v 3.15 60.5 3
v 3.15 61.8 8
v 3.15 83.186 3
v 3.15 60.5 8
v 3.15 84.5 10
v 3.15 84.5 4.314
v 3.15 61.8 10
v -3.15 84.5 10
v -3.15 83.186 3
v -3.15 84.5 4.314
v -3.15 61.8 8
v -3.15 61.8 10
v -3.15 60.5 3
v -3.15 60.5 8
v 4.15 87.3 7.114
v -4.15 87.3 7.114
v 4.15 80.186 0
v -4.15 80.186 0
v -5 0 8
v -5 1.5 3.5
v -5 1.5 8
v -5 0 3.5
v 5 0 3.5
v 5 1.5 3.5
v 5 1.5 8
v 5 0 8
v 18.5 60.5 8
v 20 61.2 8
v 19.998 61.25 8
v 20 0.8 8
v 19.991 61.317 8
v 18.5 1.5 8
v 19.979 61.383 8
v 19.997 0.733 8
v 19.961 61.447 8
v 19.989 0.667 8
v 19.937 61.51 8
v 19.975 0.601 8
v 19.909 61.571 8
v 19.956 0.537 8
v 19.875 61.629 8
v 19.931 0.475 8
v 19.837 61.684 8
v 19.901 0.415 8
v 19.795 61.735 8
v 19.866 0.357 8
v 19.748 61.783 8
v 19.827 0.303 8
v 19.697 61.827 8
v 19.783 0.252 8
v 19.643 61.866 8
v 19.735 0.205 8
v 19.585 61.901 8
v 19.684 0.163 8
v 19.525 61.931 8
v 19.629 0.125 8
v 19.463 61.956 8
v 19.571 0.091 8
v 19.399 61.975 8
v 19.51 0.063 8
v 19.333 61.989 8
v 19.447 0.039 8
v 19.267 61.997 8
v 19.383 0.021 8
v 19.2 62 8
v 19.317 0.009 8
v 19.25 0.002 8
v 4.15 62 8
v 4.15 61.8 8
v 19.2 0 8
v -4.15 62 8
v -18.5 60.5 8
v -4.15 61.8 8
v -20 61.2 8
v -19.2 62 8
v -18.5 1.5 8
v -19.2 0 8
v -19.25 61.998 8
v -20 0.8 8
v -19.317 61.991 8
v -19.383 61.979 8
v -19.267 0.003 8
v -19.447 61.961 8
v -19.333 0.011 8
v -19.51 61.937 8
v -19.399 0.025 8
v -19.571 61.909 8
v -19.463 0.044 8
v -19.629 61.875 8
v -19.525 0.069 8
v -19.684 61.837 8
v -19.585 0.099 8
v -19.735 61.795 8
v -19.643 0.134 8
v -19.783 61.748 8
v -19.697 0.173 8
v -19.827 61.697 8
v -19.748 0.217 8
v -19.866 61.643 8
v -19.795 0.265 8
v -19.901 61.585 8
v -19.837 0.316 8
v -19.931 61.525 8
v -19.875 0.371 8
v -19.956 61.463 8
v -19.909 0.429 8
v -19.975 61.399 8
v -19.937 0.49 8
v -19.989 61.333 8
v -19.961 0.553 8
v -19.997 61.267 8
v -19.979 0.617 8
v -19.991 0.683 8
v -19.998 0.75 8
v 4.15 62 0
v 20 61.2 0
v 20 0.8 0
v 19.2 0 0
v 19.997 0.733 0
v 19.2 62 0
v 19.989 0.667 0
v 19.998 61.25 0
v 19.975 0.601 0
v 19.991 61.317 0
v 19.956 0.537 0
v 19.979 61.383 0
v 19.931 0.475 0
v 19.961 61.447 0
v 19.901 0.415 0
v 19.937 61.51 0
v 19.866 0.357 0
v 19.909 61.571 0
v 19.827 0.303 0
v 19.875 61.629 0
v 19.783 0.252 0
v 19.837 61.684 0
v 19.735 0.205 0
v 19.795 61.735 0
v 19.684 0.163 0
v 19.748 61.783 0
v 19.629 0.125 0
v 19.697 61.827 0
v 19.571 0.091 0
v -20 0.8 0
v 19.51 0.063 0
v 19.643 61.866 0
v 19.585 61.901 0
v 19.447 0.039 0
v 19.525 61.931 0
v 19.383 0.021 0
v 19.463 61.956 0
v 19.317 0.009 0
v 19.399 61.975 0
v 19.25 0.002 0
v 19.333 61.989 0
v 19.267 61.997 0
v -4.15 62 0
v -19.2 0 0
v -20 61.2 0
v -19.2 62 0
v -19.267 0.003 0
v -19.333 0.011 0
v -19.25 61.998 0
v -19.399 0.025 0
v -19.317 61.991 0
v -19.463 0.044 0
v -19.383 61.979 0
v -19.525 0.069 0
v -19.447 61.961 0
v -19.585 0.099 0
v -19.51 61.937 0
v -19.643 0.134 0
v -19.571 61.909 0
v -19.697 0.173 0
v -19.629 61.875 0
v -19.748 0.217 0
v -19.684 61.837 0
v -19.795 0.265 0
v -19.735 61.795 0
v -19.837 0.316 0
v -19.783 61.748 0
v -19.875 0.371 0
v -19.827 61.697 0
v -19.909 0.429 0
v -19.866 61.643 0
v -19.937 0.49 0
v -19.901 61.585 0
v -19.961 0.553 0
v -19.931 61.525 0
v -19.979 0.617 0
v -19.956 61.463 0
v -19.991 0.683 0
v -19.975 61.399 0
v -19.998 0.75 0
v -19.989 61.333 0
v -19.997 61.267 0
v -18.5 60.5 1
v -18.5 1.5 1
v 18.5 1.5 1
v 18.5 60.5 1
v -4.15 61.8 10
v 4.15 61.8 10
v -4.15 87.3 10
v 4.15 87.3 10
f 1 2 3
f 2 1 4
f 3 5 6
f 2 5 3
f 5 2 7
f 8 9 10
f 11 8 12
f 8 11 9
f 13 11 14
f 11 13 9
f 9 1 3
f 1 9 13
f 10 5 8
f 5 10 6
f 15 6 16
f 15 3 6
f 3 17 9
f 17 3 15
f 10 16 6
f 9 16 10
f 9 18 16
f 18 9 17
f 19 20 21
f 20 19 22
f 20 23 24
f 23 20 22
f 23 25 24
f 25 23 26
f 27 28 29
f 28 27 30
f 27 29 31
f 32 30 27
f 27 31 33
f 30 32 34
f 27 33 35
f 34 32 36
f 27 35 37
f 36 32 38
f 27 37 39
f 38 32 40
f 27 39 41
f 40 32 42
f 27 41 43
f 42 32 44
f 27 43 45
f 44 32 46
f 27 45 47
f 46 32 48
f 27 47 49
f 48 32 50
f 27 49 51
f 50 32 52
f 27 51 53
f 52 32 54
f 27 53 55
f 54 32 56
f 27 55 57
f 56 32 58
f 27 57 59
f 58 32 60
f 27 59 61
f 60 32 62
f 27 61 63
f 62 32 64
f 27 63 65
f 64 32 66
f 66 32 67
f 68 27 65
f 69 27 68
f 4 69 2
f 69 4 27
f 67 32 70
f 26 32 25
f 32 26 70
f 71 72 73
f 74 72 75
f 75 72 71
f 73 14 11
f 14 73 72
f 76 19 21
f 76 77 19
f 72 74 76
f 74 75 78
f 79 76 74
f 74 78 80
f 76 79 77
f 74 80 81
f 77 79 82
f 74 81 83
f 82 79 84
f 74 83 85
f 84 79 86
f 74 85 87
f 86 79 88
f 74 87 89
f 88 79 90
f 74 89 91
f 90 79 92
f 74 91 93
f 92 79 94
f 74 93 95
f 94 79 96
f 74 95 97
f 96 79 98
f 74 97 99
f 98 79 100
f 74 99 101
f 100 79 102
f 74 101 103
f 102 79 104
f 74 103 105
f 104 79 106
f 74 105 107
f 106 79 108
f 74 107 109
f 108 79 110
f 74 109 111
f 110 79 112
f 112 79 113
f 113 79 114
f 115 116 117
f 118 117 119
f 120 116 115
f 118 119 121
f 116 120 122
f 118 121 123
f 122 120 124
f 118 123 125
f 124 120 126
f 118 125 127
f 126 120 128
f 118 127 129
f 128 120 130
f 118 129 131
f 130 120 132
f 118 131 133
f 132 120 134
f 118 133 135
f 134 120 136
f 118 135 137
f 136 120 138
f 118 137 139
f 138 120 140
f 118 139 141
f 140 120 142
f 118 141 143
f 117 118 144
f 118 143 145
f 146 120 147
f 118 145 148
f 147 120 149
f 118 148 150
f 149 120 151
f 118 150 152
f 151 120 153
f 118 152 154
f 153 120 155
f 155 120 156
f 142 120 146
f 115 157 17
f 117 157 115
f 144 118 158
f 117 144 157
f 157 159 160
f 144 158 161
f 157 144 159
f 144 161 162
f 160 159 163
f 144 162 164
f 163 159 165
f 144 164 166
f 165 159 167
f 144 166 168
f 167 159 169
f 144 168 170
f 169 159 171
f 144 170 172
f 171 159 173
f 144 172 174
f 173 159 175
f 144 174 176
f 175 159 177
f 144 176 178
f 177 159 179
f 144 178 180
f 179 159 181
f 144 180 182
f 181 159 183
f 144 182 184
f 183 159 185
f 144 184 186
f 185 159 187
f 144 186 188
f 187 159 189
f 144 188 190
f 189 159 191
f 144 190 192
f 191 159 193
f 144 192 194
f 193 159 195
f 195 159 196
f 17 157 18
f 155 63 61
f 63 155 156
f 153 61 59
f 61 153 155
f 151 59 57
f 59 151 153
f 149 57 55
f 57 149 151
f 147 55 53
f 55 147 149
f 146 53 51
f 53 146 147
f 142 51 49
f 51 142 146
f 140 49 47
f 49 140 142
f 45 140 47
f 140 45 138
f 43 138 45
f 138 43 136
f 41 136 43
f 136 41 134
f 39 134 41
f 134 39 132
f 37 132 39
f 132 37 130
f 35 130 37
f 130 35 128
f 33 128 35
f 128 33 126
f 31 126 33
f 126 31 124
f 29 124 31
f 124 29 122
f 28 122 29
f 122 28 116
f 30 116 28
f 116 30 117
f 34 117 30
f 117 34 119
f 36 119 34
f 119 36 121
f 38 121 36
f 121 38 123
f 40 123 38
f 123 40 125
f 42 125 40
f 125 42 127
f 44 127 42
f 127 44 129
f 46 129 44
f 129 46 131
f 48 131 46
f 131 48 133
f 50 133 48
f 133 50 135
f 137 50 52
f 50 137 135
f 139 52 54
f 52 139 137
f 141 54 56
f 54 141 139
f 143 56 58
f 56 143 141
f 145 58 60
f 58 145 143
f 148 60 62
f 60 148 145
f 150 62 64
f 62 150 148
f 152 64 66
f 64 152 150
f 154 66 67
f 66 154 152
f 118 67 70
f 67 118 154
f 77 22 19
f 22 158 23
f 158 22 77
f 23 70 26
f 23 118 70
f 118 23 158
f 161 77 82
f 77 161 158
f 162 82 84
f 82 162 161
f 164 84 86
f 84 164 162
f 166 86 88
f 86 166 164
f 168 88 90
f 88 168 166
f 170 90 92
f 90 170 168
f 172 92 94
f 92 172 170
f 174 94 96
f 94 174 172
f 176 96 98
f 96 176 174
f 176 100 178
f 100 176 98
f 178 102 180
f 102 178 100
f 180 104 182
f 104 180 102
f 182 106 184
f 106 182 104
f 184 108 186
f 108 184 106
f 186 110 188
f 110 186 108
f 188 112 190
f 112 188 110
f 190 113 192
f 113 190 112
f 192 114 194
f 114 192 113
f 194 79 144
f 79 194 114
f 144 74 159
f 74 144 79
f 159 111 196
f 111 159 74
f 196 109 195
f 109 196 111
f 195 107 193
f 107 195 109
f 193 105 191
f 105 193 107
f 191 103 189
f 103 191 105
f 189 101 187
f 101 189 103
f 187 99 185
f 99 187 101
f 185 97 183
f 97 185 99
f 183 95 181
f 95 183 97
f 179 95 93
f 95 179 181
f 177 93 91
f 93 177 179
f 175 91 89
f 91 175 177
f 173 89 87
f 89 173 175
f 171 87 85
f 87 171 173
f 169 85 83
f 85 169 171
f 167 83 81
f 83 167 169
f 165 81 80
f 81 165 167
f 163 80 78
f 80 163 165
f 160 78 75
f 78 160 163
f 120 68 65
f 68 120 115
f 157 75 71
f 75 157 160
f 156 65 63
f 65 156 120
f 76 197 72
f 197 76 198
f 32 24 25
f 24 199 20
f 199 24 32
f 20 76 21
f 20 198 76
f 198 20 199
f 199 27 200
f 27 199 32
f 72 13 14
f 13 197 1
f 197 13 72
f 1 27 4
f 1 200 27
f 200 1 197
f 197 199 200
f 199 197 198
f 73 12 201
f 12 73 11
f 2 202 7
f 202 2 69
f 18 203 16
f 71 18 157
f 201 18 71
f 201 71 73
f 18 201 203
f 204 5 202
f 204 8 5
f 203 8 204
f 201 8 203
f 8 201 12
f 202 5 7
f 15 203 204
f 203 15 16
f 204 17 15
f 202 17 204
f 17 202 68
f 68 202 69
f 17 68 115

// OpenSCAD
$fn=75;

BOX_W = 38.4;
BOX_L = 60.4;
BOX_H = 8.0;

WALL = 1.0;

CORNER_RADIUS = 0.8;

MIC_OUTSIDE_W=8.3;
MIC_OUTSIDE_H=10.0;

MIC_INSIDE_W=6.3;
MIC_L=25.5;

MIC_OFFSET_X = 0;
MIC_OFFSET_Y = -20.4;
MIC_OFFSET_Z = 0;

VENT_OFFSET = -4.5;
VENT_L = 19.0;
VENT_R = -19.0;

module roundedRectangle(width, length, radius) {
    difference() {
        offset(r=radius) square([width, length], center=true);
        offset(r=radius - WALL) square([width - WALL, length - WALL], center=true);
    }
}

module mainLid() {
    // sides of box
    linear_extrude(BOX_H)
    roundedRectangle(BOX_W, BOX_L, CORNER_RADIUS);
    // base of box
    translate([0, 0, BOX_H - WALL]) {
        linear_extrude(WALL) square([BOX_W, BOX_L], center=true);
    }
}

module micBox() {
        translate([MIC_OFFSET_X, MIC_OFFSET_Y, MIC_OFFSET_Z]) {
            translate([0, -10.4, 3])
            rotate([90, 0, 0])
            linear_extrude(MIC_L) square([MIC_OUTSIDE_W, MIC_OUTSIDE_H], center=true);
        }
    }
//}


module cutouts() {
    rotate([180, 0, 0]) {   // Flipping the entire object along the X axis
        translate([MIC_OFFSET_X, MIC_OFFSET_Y, MIC_OFFSET_Z]) {
            // Inside mic channel
            translate([0, -3.5, BOX_H-8])
            rotate([90, 0, 0])
            linear_extrude(MIC_L+4.1) square([MIC_INSIDE_W, MIC_OUTSIDE_H], center=true);
        }
    }
    
    // front of keel slope
    translate([-5, MIC_L+29.0, -14])
    rotate([45, 0, 0])
    //(x, z, y)
    cube([10, 11, 8]); 
    
    // Cable exit
    translate([0, -29.0, BOX_H-9.5])
    rotate([90, 0, 0])
    linear_extrude(3.0) square([10, 6], center=true);
    

}

// put it all together
translate([0, 31, 8]) { // offset model to start on 0, 0, 0
    difference() {
        rotate([180, 0, 0]) { // Flipping the entire object along the X axis
            union() {
                mainLid();
                micBox();
            }
        }
        cutouts();
    }
}
